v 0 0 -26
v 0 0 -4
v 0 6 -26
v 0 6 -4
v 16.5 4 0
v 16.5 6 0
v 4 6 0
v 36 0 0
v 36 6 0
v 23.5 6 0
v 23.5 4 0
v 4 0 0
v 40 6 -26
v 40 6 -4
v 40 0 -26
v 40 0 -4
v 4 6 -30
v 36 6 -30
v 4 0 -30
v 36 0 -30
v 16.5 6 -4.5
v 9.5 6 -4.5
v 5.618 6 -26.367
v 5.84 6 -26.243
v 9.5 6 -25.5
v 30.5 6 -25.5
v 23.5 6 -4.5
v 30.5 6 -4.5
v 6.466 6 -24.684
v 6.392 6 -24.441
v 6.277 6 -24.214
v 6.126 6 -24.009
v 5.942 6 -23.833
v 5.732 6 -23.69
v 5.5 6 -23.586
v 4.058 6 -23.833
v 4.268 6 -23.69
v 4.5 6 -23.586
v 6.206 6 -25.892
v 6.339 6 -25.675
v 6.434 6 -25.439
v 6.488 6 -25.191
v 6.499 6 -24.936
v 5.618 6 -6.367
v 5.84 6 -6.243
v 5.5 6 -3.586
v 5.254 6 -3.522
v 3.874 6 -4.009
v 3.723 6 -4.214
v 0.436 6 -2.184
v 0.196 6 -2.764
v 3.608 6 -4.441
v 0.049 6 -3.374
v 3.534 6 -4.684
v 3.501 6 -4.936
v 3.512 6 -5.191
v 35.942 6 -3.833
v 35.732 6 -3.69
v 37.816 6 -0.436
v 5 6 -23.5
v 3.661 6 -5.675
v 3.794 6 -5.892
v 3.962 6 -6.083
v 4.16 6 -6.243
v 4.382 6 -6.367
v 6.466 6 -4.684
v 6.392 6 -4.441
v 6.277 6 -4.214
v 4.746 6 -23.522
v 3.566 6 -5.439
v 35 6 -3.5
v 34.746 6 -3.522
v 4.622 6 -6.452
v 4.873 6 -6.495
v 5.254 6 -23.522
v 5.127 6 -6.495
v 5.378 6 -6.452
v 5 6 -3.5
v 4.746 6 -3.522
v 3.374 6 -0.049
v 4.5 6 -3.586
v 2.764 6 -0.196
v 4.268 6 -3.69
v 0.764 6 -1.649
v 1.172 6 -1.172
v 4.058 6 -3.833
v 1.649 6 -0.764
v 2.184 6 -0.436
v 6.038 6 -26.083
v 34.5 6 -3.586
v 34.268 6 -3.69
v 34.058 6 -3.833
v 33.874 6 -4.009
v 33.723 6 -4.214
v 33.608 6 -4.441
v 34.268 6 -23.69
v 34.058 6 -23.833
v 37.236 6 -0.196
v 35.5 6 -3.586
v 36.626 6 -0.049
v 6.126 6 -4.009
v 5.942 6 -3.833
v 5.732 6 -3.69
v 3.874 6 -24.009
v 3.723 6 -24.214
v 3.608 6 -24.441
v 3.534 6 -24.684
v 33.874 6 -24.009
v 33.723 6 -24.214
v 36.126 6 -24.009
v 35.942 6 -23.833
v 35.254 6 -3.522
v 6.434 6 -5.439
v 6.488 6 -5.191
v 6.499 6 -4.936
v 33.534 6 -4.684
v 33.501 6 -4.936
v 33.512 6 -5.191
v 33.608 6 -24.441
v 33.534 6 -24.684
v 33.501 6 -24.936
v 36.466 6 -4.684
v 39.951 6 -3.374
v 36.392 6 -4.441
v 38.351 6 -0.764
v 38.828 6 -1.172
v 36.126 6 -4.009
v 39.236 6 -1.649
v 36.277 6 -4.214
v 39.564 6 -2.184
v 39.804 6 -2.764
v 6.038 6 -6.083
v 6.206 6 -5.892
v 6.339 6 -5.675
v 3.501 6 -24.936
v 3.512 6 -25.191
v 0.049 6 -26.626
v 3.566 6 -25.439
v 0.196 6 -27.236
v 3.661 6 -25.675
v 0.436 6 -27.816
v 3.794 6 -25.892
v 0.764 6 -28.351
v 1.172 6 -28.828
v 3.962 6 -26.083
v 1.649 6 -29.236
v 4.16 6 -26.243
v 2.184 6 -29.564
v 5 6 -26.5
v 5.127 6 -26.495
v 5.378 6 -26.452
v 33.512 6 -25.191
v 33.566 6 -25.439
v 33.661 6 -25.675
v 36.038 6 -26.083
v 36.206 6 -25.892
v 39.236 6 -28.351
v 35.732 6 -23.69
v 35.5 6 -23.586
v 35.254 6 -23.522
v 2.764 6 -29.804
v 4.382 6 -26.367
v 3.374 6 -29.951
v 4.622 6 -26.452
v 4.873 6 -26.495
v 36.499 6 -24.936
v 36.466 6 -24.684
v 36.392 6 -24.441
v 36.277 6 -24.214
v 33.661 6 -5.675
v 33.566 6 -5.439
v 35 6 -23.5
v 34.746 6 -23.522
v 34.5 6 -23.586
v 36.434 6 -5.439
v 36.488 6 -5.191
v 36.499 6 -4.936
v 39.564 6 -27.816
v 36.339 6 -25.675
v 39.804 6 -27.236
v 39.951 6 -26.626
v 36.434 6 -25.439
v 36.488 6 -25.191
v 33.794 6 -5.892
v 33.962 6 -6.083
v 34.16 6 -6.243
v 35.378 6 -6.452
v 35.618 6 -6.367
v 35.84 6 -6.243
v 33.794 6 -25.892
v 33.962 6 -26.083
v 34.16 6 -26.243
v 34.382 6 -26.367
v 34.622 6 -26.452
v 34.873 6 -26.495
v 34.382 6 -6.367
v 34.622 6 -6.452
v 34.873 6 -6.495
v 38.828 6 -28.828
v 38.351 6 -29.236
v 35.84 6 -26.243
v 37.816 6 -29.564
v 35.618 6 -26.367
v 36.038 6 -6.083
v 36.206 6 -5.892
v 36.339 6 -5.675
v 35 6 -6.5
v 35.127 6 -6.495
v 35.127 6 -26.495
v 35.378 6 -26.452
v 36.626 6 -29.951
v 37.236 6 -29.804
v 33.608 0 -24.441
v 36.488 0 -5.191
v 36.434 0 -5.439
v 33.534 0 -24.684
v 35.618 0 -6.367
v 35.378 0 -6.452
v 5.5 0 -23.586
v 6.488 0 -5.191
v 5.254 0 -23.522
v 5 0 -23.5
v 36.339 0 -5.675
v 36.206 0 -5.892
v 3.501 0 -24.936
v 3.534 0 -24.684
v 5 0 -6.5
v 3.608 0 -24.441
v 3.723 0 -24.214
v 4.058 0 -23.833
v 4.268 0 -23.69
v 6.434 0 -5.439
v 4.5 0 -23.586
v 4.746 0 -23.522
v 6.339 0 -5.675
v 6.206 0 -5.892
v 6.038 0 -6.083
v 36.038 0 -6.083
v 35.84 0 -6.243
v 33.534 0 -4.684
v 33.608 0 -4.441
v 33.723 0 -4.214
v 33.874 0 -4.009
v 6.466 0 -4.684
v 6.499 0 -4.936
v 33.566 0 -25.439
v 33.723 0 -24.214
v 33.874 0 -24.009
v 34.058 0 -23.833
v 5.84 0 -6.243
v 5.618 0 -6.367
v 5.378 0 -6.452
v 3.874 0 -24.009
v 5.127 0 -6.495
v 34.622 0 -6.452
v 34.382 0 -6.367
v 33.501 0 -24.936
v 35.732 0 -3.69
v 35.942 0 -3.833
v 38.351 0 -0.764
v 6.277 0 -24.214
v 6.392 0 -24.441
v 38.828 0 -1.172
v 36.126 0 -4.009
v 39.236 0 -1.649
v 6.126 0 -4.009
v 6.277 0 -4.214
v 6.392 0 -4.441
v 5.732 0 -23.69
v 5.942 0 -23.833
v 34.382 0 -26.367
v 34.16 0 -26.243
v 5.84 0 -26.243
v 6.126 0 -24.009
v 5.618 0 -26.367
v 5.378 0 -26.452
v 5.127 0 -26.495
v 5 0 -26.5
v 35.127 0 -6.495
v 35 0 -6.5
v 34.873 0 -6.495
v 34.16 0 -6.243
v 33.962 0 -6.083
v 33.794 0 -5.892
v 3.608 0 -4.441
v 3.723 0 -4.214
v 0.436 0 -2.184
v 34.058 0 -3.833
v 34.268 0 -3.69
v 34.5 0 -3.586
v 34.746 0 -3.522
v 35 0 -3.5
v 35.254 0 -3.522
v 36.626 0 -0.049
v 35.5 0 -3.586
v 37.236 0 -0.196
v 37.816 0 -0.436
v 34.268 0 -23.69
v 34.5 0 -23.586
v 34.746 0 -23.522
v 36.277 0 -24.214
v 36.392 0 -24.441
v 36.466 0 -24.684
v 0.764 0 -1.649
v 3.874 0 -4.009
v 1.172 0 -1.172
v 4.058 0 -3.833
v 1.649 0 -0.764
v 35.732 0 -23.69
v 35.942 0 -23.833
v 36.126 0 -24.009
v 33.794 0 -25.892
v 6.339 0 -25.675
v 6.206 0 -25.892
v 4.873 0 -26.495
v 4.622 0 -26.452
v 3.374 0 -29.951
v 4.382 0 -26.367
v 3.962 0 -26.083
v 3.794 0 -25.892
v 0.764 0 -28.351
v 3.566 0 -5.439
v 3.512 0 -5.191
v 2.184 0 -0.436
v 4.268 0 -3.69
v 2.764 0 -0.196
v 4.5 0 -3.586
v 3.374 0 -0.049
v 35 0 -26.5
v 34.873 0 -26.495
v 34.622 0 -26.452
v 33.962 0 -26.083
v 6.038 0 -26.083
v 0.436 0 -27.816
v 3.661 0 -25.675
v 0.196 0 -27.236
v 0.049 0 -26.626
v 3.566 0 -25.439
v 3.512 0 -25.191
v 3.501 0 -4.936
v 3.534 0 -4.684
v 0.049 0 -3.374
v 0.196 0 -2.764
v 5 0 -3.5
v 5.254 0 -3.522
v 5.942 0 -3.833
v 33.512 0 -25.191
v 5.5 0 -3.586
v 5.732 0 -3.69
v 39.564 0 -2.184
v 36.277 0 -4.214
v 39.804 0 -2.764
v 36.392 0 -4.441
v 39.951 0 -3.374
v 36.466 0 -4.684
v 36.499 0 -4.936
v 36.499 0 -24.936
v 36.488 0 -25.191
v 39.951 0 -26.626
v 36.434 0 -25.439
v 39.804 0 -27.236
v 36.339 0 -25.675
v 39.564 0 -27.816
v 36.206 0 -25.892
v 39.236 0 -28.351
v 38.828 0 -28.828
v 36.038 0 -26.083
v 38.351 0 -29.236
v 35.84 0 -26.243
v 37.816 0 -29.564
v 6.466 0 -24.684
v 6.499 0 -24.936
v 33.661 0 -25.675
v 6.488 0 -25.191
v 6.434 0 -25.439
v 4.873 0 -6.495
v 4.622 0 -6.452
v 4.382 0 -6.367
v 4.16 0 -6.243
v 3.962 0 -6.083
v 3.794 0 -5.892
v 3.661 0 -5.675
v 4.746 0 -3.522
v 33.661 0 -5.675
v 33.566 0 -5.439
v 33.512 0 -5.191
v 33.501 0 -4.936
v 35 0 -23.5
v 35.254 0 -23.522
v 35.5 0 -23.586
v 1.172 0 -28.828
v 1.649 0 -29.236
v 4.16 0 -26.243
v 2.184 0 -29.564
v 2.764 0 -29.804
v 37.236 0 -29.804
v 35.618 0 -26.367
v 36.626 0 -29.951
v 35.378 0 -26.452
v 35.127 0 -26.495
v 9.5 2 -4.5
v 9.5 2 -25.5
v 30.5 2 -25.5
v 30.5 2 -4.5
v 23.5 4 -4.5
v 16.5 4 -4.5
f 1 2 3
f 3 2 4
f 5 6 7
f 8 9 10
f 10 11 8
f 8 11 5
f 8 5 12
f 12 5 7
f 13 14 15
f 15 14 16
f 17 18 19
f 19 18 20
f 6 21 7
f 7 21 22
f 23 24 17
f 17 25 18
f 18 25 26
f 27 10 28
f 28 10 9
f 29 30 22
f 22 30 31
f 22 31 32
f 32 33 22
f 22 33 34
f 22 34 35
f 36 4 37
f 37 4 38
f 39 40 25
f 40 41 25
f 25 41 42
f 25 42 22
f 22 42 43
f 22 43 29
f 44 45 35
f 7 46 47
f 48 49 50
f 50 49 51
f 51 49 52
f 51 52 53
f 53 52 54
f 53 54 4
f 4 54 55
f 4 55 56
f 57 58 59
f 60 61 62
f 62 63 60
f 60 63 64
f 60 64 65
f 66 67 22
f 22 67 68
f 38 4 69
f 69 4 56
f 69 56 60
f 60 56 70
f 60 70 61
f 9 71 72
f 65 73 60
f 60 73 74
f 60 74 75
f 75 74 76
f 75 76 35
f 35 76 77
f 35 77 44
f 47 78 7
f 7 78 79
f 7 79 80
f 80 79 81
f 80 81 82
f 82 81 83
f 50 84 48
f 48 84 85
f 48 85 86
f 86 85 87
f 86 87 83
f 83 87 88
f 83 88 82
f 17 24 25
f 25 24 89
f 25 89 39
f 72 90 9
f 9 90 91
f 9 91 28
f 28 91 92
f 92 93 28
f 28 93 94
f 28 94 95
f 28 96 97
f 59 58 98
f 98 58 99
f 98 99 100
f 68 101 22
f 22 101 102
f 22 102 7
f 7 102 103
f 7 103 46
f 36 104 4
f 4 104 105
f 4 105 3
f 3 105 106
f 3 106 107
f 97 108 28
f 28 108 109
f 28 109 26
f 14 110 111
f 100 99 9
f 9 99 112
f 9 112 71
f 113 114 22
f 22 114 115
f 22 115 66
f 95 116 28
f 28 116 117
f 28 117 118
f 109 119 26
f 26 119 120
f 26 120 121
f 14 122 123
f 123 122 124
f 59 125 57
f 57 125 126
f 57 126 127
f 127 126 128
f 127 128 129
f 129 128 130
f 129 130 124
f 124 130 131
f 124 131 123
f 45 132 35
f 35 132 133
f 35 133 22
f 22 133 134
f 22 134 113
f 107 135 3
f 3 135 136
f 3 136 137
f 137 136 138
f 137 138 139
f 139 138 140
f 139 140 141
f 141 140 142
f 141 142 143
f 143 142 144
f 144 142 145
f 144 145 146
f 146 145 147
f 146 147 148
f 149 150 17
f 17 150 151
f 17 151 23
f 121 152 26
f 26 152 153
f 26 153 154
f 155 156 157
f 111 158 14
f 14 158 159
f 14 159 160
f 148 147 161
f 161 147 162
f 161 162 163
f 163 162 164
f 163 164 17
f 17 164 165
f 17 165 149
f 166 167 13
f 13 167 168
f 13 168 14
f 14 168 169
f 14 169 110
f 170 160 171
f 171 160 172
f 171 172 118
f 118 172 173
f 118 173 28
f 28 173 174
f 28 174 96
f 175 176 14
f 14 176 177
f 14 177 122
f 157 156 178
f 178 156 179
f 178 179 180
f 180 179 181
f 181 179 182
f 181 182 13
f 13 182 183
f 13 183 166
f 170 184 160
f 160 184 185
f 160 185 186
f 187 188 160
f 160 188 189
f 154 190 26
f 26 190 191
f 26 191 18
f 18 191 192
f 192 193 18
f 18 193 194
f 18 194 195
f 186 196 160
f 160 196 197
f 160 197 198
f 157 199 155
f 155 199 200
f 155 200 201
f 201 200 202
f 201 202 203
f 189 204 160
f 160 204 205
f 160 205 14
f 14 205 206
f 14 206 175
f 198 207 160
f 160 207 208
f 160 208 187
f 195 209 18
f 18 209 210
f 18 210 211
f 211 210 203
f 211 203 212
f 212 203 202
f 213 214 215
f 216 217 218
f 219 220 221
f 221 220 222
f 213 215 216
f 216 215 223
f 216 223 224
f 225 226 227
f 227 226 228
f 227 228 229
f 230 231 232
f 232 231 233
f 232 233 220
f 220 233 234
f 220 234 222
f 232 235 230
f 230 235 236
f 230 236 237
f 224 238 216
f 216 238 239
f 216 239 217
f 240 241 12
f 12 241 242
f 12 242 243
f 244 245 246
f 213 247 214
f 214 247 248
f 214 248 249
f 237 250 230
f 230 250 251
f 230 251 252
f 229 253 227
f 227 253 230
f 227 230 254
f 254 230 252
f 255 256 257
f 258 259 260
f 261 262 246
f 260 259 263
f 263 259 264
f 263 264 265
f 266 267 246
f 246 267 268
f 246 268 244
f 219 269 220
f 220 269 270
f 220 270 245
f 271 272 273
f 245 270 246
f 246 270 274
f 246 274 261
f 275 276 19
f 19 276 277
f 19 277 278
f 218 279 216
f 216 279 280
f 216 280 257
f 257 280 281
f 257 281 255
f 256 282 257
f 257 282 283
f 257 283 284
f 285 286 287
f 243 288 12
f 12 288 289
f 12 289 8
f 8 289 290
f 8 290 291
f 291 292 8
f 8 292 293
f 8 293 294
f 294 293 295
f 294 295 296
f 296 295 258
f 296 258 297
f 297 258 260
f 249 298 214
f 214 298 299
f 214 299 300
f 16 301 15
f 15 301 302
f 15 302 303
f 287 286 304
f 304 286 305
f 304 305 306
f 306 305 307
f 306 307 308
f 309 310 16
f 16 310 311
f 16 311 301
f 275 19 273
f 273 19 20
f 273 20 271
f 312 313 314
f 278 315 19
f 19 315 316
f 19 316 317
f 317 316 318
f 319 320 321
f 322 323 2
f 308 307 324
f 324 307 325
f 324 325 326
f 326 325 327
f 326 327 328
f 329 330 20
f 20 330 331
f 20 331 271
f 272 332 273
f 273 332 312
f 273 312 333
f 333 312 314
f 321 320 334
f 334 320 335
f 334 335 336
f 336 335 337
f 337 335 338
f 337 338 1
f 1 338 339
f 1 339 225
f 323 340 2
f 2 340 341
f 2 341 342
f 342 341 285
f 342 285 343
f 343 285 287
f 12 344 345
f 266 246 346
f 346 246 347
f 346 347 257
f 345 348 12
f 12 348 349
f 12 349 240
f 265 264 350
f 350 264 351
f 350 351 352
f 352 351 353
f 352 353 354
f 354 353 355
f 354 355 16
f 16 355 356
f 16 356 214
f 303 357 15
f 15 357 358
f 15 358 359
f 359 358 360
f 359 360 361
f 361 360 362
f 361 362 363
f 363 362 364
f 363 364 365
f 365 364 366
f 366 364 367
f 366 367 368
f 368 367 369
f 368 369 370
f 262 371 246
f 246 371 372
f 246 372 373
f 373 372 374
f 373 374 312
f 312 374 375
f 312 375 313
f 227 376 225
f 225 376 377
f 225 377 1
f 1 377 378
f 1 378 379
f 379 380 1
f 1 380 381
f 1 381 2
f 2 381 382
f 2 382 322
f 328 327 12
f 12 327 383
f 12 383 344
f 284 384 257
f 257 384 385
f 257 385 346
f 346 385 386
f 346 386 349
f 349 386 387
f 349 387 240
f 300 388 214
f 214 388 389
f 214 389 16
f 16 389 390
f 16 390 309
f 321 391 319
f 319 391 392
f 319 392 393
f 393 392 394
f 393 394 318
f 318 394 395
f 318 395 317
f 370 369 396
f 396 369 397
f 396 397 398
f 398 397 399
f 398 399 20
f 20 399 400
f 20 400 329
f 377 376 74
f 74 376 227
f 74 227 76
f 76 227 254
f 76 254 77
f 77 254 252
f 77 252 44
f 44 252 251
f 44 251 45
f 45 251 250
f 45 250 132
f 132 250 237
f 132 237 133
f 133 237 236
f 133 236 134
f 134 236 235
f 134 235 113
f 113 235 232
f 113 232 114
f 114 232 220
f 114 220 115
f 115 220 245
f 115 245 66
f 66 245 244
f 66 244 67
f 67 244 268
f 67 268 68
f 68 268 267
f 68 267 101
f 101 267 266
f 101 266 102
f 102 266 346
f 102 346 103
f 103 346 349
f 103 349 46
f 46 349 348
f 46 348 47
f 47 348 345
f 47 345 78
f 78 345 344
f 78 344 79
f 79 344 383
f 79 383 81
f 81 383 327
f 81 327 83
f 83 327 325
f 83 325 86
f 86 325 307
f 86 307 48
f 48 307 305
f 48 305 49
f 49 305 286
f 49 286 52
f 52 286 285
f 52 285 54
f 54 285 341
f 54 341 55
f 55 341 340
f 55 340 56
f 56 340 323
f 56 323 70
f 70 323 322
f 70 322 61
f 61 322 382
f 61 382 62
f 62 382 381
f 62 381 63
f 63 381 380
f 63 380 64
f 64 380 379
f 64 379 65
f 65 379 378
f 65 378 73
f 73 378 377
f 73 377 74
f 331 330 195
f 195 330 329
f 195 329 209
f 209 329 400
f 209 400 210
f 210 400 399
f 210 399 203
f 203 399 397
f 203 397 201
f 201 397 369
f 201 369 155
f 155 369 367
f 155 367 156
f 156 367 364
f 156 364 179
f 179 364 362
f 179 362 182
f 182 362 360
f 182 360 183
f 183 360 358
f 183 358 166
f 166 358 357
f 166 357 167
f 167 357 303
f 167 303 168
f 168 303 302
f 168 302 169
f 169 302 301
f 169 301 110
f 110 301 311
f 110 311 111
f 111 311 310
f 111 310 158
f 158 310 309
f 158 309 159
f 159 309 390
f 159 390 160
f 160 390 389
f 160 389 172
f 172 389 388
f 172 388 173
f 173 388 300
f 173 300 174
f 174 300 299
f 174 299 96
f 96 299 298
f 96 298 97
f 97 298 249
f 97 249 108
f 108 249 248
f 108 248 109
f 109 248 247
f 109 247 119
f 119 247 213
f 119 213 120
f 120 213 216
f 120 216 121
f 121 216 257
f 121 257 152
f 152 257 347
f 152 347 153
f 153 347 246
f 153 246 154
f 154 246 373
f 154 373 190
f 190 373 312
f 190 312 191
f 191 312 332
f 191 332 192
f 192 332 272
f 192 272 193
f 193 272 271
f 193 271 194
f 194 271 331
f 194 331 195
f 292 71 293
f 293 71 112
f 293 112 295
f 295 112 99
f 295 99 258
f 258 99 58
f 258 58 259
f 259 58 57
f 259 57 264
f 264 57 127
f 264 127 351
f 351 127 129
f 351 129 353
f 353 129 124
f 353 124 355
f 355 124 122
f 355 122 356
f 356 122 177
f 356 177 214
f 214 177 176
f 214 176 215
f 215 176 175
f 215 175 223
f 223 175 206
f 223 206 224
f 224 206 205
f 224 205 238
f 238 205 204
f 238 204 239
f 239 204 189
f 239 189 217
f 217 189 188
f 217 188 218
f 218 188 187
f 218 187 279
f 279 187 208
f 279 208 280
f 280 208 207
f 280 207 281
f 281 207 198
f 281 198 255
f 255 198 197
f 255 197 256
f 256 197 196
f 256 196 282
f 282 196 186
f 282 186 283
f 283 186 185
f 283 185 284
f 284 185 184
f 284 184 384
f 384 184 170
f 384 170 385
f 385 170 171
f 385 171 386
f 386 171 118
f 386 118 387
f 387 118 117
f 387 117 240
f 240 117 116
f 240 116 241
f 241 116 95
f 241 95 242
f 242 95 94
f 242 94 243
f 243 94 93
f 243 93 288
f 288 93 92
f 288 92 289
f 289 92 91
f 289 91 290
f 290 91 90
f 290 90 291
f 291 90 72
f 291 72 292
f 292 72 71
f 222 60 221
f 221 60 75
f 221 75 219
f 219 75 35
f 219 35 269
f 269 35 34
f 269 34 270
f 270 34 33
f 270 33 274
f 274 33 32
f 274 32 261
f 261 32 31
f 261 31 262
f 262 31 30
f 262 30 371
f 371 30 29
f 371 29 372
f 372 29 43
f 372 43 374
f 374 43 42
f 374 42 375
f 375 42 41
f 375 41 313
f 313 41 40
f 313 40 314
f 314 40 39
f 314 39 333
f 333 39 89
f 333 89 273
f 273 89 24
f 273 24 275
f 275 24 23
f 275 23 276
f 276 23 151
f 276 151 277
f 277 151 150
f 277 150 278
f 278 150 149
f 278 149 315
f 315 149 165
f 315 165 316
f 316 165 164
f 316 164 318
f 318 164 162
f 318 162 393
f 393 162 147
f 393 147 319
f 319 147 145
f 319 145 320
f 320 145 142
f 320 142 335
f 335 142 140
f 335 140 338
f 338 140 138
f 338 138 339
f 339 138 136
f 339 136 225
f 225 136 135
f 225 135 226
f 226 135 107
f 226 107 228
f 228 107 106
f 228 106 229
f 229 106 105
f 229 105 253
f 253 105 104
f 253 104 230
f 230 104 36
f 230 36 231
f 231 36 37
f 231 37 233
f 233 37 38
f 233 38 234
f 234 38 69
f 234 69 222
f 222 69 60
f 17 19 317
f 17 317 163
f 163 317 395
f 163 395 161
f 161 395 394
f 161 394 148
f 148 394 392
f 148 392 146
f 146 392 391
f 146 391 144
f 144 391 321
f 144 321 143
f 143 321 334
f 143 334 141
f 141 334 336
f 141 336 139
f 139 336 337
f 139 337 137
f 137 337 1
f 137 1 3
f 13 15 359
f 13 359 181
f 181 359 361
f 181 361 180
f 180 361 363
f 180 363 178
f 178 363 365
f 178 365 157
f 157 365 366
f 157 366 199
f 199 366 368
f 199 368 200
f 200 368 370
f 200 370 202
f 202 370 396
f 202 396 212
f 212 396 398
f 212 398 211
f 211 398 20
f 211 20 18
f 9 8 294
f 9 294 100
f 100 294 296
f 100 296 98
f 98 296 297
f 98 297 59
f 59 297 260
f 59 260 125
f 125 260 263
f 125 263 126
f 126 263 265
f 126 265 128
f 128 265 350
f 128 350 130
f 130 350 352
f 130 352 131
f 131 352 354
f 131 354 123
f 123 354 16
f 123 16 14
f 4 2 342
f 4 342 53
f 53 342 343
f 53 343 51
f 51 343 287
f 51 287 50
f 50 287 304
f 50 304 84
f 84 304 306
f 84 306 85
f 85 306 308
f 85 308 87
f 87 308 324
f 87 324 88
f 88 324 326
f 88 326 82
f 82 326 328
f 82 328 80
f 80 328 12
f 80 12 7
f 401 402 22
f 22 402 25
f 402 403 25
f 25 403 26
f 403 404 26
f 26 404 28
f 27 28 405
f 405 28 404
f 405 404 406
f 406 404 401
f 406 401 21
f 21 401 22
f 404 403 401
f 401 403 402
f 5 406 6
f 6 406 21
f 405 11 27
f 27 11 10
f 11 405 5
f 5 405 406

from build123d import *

# Parameters (mm, degrees)
SKETCH1_W           = 40
SKETCH1_H           = 30
BOSS_EXTRUDE1_DEPTH = 6
SKETCH2_R           = 1.5
CUT_EXTRUDE1_DEPTH  = 6
FILLET1_R           = 4
SKETCH3_W           = 21
SKETCH3_H           = 21
CUT_EXTRUDE2_DEPTH  = 4
SKETCH4_W           = 7
SKETCH4_H           = 4.5
CUT_EXTRUDE3_DEPTH  = 2


with BuildPart() as part:
    # Sketch1 → Boss-Extrude1 (new body)
    with BuildSketch(Plane(origin=(0, 0, 0), x_dir=(1, 0, 0), z_dir=(0, 1, 0))):
        with Locations((20, 15)):
            Rectangle(SKETCH1_W, SKETCH1_H)
    extrude(amount=BOSS_EXTRUDE1_DEPTH)

    # Sketch2 → Cut-Extrude1 (cut)
    with BuildSketch(Plane(origin=(0, 6, 0), x_dir=(1, 0, 0), z_dir=(0, 1, 0))):
        with Locations(Location((5, 5, 0), (0, 0, 270))):
            Circle(SKETCH2_R)
        with Locations(Location((5, 25, 0), (0, 0, 90))):
            Circle(SKETCH2_R)
        with Locations(Location((35, 5, 0), (0, 0, 90))):
            Circle(SKETCH2_R)
        with Locations(Location((35, 25, 0), (0, 0, 270))):
            Circle(SKETCH2_R)
    extrude(amount=-CUT_EXTRUDE1_DEPTH, mode=Mode.SUBTRACT)

    # Fillet1
    fillet1_edges = [part.edges().sort_by_distance(p)[0] for p in [
        (0, 3, -30),
        (40, 3, -30),
        (40, 3, 0),
        (0, 3, 0),
    ]]
    fillet(fillet1_edges, radius=FILLET1_R)

    # Sketch3 → Cut-Extrude2 (cut)
    with BuildSketch(Plane(origin=(0, 6, 0), x_dir=(1, 0, 0), z_dir=(0, 1, 0))):
        with Locations((20, 15)):
            Rectangle(SKETCH3_W, SKETCH3_H)
    extrude(amount=-CUT_EXTRUDE2_DEPTH, mode=Mode.SUBTRACT)

    # Sketch4 → Cut-Extrude3 (cut)
    with BuildSketch(Plane(origin=(0, 6, 0), x_dir=(1, 0, 0), z_dir=(0, 1, 0))):
        with Locations((20, 2.25)):
            Rectangle(SKETCH4_W, SKETCH4_H)
    extrude(amount=-CUT_EXTRUDE3_DEPTH, mode=Mode.SUBTRACT)


solid = part.part
